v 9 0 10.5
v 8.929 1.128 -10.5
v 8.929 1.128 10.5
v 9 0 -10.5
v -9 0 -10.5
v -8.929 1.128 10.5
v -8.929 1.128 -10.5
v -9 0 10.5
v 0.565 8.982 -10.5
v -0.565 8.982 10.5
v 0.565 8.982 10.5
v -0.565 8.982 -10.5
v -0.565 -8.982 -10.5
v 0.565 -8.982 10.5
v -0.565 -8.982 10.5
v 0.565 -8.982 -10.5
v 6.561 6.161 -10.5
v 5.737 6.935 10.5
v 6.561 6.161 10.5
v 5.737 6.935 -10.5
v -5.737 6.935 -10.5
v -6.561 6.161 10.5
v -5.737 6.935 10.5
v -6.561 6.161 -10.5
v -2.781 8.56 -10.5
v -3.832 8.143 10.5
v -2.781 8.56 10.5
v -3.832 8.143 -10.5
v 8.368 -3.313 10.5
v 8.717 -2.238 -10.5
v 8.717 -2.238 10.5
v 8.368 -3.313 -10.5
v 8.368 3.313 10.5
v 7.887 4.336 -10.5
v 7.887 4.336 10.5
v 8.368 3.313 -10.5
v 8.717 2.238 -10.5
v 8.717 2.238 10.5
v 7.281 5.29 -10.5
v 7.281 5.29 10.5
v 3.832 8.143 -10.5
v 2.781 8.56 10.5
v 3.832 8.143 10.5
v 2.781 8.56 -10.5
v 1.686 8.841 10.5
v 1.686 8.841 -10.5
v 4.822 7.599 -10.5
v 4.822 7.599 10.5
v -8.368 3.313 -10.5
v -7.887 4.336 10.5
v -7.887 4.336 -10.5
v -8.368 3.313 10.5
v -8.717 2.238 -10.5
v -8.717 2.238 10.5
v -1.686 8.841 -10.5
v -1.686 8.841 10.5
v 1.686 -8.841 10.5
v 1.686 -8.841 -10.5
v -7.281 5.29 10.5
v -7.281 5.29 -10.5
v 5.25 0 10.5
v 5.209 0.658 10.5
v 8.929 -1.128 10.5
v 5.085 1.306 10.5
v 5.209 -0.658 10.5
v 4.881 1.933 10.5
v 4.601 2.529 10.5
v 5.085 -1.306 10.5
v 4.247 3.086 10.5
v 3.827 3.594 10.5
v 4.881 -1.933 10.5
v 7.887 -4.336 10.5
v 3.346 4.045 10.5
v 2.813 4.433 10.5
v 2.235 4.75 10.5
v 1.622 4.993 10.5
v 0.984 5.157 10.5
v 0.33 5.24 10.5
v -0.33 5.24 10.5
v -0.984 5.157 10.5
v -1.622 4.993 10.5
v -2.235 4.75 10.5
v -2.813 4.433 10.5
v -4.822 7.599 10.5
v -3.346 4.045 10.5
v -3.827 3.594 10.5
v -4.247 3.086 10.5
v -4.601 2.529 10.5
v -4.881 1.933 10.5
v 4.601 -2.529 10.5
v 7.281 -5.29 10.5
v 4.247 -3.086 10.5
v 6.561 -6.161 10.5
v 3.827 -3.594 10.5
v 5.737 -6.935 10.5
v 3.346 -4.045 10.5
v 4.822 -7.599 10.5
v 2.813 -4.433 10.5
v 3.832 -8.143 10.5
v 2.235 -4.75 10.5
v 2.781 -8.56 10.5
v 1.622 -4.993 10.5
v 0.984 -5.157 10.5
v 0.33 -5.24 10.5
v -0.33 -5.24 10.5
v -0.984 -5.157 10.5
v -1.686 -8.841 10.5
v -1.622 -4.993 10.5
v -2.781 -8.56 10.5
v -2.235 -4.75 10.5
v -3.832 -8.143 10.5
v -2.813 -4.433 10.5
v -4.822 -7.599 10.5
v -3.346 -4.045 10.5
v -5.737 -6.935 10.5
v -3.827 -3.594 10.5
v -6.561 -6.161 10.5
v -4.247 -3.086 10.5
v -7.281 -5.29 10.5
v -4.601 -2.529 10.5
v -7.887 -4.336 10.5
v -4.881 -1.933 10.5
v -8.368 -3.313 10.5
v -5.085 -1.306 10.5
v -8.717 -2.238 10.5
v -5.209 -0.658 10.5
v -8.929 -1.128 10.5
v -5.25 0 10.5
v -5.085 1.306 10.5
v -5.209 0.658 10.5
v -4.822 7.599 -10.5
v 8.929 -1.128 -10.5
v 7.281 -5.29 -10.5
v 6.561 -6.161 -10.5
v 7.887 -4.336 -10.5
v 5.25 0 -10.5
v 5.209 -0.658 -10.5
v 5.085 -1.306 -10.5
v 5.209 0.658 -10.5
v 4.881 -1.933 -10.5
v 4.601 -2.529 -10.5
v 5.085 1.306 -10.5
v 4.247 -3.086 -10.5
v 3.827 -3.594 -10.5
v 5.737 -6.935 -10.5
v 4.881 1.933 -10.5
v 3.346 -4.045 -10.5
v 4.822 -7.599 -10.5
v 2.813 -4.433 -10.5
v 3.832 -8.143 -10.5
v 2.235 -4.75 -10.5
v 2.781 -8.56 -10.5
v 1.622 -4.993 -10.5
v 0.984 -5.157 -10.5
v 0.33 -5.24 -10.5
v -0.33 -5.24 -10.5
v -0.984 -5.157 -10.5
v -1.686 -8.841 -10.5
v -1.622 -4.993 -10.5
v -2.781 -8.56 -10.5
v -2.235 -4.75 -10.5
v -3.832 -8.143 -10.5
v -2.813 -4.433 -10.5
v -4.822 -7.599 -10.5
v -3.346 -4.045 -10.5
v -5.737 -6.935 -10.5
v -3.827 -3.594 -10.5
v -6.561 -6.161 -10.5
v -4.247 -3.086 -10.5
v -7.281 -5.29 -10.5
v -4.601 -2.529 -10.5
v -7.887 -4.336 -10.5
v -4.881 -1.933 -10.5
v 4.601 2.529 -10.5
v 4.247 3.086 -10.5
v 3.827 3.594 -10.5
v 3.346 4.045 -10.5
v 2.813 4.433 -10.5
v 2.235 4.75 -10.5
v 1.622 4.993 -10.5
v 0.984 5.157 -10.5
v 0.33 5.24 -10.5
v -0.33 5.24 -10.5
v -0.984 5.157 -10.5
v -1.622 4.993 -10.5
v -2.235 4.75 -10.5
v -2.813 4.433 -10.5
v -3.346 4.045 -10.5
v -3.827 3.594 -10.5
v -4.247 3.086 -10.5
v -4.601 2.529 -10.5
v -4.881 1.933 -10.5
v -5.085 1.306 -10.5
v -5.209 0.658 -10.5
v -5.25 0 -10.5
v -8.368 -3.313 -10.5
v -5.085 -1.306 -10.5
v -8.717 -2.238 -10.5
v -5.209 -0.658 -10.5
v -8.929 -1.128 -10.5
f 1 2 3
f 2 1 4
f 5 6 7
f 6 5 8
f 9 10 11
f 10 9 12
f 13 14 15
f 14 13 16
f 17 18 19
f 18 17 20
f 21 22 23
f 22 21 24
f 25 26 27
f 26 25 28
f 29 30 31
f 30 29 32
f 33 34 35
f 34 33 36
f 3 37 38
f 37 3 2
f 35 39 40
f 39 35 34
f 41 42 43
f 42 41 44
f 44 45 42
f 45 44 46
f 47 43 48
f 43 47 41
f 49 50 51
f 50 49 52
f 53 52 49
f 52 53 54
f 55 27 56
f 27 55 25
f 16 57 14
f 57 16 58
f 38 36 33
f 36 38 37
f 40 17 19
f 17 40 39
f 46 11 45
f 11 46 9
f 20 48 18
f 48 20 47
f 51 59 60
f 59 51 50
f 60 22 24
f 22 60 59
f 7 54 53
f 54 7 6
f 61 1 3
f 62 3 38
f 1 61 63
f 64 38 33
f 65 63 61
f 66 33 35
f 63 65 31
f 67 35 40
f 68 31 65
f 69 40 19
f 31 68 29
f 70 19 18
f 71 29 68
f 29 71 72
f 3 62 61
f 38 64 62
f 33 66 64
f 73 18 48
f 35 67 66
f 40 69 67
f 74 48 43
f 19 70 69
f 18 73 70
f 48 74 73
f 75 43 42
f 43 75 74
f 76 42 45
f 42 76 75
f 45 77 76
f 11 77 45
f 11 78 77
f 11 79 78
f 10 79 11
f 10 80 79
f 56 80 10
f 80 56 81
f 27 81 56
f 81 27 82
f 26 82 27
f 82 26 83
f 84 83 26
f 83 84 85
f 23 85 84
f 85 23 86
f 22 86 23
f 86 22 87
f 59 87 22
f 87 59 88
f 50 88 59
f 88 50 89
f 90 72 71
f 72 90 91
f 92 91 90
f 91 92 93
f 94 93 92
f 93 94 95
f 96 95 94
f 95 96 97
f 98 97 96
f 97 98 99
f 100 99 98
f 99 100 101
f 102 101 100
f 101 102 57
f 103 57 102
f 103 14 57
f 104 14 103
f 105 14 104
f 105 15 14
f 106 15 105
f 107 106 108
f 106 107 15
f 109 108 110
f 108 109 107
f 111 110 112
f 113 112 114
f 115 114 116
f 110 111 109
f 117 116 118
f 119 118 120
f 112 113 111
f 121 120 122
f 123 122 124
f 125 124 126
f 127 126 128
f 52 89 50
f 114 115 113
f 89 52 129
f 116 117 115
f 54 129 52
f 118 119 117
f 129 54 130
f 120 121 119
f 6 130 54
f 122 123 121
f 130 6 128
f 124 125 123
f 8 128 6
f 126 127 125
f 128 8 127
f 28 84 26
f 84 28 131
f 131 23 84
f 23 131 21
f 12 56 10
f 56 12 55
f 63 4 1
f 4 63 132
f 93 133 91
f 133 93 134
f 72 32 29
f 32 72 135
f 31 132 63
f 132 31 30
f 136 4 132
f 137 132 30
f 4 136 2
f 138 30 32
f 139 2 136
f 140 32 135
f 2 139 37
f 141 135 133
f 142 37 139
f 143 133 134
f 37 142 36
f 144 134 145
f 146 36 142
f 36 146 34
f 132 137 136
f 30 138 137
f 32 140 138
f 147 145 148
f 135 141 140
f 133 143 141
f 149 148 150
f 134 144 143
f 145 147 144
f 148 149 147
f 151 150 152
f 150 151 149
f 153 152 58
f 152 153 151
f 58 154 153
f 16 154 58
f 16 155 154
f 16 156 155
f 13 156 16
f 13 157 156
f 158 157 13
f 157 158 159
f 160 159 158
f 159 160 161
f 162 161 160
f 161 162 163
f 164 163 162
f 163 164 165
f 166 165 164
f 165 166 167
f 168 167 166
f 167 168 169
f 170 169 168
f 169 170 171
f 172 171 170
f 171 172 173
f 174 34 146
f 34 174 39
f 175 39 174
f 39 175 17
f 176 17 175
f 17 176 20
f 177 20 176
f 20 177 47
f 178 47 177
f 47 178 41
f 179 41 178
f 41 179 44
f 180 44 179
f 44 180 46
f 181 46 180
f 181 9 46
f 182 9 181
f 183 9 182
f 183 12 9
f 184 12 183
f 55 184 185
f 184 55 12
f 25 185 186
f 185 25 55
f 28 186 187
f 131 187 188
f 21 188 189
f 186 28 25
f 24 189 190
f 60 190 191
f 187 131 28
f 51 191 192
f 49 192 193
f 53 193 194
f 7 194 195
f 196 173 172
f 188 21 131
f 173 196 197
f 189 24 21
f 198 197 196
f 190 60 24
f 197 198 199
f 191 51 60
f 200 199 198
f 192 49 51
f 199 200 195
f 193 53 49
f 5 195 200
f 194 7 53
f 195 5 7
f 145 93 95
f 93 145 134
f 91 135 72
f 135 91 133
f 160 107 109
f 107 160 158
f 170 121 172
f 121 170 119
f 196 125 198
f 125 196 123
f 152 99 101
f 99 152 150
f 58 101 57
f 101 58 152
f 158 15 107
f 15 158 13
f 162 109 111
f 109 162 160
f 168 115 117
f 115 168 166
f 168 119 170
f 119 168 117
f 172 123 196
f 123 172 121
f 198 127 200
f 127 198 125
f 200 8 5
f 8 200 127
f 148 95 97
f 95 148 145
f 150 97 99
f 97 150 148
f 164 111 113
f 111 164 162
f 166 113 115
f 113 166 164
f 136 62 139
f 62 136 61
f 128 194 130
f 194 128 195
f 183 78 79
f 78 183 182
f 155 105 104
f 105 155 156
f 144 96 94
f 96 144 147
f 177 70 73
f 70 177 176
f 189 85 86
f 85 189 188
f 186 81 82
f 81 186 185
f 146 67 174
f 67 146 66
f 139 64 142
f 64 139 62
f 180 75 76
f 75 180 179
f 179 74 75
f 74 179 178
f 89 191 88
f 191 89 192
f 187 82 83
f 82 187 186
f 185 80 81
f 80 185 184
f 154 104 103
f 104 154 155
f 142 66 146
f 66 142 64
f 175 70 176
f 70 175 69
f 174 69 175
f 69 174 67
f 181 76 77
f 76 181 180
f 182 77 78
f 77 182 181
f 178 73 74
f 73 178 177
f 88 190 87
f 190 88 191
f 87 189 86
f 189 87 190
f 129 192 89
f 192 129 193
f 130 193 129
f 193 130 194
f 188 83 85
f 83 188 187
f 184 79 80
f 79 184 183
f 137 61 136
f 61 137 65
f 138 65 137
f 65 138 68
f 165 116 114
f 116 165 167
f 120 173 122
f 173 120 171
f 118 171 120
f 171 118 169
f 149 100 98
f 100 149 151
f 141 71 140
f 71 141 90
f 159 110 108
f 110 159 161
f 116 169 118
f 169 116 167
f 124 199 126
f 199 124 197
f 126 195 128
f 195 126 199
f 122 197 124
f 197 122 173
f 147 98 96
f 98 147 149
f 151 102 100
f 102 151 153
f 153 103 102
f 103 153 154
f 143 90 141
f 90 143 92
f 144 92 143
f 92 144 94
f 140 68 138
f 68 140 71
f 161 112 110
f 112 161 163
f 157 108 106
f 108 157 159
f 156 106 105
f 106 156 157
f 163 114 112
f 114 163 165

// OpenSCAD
$fn = 50;


difference() {
	union() {
		translate(v = [0, 0, -10.5000000000]) {
			cylinder(h = 21, r = 9.0000000000);
		}
	}
	union() {
		translate(v = [0, 0, -100.0000000000]) {
			cylinder(h = 200, r = 5.2500000000);
		}
	}
}
